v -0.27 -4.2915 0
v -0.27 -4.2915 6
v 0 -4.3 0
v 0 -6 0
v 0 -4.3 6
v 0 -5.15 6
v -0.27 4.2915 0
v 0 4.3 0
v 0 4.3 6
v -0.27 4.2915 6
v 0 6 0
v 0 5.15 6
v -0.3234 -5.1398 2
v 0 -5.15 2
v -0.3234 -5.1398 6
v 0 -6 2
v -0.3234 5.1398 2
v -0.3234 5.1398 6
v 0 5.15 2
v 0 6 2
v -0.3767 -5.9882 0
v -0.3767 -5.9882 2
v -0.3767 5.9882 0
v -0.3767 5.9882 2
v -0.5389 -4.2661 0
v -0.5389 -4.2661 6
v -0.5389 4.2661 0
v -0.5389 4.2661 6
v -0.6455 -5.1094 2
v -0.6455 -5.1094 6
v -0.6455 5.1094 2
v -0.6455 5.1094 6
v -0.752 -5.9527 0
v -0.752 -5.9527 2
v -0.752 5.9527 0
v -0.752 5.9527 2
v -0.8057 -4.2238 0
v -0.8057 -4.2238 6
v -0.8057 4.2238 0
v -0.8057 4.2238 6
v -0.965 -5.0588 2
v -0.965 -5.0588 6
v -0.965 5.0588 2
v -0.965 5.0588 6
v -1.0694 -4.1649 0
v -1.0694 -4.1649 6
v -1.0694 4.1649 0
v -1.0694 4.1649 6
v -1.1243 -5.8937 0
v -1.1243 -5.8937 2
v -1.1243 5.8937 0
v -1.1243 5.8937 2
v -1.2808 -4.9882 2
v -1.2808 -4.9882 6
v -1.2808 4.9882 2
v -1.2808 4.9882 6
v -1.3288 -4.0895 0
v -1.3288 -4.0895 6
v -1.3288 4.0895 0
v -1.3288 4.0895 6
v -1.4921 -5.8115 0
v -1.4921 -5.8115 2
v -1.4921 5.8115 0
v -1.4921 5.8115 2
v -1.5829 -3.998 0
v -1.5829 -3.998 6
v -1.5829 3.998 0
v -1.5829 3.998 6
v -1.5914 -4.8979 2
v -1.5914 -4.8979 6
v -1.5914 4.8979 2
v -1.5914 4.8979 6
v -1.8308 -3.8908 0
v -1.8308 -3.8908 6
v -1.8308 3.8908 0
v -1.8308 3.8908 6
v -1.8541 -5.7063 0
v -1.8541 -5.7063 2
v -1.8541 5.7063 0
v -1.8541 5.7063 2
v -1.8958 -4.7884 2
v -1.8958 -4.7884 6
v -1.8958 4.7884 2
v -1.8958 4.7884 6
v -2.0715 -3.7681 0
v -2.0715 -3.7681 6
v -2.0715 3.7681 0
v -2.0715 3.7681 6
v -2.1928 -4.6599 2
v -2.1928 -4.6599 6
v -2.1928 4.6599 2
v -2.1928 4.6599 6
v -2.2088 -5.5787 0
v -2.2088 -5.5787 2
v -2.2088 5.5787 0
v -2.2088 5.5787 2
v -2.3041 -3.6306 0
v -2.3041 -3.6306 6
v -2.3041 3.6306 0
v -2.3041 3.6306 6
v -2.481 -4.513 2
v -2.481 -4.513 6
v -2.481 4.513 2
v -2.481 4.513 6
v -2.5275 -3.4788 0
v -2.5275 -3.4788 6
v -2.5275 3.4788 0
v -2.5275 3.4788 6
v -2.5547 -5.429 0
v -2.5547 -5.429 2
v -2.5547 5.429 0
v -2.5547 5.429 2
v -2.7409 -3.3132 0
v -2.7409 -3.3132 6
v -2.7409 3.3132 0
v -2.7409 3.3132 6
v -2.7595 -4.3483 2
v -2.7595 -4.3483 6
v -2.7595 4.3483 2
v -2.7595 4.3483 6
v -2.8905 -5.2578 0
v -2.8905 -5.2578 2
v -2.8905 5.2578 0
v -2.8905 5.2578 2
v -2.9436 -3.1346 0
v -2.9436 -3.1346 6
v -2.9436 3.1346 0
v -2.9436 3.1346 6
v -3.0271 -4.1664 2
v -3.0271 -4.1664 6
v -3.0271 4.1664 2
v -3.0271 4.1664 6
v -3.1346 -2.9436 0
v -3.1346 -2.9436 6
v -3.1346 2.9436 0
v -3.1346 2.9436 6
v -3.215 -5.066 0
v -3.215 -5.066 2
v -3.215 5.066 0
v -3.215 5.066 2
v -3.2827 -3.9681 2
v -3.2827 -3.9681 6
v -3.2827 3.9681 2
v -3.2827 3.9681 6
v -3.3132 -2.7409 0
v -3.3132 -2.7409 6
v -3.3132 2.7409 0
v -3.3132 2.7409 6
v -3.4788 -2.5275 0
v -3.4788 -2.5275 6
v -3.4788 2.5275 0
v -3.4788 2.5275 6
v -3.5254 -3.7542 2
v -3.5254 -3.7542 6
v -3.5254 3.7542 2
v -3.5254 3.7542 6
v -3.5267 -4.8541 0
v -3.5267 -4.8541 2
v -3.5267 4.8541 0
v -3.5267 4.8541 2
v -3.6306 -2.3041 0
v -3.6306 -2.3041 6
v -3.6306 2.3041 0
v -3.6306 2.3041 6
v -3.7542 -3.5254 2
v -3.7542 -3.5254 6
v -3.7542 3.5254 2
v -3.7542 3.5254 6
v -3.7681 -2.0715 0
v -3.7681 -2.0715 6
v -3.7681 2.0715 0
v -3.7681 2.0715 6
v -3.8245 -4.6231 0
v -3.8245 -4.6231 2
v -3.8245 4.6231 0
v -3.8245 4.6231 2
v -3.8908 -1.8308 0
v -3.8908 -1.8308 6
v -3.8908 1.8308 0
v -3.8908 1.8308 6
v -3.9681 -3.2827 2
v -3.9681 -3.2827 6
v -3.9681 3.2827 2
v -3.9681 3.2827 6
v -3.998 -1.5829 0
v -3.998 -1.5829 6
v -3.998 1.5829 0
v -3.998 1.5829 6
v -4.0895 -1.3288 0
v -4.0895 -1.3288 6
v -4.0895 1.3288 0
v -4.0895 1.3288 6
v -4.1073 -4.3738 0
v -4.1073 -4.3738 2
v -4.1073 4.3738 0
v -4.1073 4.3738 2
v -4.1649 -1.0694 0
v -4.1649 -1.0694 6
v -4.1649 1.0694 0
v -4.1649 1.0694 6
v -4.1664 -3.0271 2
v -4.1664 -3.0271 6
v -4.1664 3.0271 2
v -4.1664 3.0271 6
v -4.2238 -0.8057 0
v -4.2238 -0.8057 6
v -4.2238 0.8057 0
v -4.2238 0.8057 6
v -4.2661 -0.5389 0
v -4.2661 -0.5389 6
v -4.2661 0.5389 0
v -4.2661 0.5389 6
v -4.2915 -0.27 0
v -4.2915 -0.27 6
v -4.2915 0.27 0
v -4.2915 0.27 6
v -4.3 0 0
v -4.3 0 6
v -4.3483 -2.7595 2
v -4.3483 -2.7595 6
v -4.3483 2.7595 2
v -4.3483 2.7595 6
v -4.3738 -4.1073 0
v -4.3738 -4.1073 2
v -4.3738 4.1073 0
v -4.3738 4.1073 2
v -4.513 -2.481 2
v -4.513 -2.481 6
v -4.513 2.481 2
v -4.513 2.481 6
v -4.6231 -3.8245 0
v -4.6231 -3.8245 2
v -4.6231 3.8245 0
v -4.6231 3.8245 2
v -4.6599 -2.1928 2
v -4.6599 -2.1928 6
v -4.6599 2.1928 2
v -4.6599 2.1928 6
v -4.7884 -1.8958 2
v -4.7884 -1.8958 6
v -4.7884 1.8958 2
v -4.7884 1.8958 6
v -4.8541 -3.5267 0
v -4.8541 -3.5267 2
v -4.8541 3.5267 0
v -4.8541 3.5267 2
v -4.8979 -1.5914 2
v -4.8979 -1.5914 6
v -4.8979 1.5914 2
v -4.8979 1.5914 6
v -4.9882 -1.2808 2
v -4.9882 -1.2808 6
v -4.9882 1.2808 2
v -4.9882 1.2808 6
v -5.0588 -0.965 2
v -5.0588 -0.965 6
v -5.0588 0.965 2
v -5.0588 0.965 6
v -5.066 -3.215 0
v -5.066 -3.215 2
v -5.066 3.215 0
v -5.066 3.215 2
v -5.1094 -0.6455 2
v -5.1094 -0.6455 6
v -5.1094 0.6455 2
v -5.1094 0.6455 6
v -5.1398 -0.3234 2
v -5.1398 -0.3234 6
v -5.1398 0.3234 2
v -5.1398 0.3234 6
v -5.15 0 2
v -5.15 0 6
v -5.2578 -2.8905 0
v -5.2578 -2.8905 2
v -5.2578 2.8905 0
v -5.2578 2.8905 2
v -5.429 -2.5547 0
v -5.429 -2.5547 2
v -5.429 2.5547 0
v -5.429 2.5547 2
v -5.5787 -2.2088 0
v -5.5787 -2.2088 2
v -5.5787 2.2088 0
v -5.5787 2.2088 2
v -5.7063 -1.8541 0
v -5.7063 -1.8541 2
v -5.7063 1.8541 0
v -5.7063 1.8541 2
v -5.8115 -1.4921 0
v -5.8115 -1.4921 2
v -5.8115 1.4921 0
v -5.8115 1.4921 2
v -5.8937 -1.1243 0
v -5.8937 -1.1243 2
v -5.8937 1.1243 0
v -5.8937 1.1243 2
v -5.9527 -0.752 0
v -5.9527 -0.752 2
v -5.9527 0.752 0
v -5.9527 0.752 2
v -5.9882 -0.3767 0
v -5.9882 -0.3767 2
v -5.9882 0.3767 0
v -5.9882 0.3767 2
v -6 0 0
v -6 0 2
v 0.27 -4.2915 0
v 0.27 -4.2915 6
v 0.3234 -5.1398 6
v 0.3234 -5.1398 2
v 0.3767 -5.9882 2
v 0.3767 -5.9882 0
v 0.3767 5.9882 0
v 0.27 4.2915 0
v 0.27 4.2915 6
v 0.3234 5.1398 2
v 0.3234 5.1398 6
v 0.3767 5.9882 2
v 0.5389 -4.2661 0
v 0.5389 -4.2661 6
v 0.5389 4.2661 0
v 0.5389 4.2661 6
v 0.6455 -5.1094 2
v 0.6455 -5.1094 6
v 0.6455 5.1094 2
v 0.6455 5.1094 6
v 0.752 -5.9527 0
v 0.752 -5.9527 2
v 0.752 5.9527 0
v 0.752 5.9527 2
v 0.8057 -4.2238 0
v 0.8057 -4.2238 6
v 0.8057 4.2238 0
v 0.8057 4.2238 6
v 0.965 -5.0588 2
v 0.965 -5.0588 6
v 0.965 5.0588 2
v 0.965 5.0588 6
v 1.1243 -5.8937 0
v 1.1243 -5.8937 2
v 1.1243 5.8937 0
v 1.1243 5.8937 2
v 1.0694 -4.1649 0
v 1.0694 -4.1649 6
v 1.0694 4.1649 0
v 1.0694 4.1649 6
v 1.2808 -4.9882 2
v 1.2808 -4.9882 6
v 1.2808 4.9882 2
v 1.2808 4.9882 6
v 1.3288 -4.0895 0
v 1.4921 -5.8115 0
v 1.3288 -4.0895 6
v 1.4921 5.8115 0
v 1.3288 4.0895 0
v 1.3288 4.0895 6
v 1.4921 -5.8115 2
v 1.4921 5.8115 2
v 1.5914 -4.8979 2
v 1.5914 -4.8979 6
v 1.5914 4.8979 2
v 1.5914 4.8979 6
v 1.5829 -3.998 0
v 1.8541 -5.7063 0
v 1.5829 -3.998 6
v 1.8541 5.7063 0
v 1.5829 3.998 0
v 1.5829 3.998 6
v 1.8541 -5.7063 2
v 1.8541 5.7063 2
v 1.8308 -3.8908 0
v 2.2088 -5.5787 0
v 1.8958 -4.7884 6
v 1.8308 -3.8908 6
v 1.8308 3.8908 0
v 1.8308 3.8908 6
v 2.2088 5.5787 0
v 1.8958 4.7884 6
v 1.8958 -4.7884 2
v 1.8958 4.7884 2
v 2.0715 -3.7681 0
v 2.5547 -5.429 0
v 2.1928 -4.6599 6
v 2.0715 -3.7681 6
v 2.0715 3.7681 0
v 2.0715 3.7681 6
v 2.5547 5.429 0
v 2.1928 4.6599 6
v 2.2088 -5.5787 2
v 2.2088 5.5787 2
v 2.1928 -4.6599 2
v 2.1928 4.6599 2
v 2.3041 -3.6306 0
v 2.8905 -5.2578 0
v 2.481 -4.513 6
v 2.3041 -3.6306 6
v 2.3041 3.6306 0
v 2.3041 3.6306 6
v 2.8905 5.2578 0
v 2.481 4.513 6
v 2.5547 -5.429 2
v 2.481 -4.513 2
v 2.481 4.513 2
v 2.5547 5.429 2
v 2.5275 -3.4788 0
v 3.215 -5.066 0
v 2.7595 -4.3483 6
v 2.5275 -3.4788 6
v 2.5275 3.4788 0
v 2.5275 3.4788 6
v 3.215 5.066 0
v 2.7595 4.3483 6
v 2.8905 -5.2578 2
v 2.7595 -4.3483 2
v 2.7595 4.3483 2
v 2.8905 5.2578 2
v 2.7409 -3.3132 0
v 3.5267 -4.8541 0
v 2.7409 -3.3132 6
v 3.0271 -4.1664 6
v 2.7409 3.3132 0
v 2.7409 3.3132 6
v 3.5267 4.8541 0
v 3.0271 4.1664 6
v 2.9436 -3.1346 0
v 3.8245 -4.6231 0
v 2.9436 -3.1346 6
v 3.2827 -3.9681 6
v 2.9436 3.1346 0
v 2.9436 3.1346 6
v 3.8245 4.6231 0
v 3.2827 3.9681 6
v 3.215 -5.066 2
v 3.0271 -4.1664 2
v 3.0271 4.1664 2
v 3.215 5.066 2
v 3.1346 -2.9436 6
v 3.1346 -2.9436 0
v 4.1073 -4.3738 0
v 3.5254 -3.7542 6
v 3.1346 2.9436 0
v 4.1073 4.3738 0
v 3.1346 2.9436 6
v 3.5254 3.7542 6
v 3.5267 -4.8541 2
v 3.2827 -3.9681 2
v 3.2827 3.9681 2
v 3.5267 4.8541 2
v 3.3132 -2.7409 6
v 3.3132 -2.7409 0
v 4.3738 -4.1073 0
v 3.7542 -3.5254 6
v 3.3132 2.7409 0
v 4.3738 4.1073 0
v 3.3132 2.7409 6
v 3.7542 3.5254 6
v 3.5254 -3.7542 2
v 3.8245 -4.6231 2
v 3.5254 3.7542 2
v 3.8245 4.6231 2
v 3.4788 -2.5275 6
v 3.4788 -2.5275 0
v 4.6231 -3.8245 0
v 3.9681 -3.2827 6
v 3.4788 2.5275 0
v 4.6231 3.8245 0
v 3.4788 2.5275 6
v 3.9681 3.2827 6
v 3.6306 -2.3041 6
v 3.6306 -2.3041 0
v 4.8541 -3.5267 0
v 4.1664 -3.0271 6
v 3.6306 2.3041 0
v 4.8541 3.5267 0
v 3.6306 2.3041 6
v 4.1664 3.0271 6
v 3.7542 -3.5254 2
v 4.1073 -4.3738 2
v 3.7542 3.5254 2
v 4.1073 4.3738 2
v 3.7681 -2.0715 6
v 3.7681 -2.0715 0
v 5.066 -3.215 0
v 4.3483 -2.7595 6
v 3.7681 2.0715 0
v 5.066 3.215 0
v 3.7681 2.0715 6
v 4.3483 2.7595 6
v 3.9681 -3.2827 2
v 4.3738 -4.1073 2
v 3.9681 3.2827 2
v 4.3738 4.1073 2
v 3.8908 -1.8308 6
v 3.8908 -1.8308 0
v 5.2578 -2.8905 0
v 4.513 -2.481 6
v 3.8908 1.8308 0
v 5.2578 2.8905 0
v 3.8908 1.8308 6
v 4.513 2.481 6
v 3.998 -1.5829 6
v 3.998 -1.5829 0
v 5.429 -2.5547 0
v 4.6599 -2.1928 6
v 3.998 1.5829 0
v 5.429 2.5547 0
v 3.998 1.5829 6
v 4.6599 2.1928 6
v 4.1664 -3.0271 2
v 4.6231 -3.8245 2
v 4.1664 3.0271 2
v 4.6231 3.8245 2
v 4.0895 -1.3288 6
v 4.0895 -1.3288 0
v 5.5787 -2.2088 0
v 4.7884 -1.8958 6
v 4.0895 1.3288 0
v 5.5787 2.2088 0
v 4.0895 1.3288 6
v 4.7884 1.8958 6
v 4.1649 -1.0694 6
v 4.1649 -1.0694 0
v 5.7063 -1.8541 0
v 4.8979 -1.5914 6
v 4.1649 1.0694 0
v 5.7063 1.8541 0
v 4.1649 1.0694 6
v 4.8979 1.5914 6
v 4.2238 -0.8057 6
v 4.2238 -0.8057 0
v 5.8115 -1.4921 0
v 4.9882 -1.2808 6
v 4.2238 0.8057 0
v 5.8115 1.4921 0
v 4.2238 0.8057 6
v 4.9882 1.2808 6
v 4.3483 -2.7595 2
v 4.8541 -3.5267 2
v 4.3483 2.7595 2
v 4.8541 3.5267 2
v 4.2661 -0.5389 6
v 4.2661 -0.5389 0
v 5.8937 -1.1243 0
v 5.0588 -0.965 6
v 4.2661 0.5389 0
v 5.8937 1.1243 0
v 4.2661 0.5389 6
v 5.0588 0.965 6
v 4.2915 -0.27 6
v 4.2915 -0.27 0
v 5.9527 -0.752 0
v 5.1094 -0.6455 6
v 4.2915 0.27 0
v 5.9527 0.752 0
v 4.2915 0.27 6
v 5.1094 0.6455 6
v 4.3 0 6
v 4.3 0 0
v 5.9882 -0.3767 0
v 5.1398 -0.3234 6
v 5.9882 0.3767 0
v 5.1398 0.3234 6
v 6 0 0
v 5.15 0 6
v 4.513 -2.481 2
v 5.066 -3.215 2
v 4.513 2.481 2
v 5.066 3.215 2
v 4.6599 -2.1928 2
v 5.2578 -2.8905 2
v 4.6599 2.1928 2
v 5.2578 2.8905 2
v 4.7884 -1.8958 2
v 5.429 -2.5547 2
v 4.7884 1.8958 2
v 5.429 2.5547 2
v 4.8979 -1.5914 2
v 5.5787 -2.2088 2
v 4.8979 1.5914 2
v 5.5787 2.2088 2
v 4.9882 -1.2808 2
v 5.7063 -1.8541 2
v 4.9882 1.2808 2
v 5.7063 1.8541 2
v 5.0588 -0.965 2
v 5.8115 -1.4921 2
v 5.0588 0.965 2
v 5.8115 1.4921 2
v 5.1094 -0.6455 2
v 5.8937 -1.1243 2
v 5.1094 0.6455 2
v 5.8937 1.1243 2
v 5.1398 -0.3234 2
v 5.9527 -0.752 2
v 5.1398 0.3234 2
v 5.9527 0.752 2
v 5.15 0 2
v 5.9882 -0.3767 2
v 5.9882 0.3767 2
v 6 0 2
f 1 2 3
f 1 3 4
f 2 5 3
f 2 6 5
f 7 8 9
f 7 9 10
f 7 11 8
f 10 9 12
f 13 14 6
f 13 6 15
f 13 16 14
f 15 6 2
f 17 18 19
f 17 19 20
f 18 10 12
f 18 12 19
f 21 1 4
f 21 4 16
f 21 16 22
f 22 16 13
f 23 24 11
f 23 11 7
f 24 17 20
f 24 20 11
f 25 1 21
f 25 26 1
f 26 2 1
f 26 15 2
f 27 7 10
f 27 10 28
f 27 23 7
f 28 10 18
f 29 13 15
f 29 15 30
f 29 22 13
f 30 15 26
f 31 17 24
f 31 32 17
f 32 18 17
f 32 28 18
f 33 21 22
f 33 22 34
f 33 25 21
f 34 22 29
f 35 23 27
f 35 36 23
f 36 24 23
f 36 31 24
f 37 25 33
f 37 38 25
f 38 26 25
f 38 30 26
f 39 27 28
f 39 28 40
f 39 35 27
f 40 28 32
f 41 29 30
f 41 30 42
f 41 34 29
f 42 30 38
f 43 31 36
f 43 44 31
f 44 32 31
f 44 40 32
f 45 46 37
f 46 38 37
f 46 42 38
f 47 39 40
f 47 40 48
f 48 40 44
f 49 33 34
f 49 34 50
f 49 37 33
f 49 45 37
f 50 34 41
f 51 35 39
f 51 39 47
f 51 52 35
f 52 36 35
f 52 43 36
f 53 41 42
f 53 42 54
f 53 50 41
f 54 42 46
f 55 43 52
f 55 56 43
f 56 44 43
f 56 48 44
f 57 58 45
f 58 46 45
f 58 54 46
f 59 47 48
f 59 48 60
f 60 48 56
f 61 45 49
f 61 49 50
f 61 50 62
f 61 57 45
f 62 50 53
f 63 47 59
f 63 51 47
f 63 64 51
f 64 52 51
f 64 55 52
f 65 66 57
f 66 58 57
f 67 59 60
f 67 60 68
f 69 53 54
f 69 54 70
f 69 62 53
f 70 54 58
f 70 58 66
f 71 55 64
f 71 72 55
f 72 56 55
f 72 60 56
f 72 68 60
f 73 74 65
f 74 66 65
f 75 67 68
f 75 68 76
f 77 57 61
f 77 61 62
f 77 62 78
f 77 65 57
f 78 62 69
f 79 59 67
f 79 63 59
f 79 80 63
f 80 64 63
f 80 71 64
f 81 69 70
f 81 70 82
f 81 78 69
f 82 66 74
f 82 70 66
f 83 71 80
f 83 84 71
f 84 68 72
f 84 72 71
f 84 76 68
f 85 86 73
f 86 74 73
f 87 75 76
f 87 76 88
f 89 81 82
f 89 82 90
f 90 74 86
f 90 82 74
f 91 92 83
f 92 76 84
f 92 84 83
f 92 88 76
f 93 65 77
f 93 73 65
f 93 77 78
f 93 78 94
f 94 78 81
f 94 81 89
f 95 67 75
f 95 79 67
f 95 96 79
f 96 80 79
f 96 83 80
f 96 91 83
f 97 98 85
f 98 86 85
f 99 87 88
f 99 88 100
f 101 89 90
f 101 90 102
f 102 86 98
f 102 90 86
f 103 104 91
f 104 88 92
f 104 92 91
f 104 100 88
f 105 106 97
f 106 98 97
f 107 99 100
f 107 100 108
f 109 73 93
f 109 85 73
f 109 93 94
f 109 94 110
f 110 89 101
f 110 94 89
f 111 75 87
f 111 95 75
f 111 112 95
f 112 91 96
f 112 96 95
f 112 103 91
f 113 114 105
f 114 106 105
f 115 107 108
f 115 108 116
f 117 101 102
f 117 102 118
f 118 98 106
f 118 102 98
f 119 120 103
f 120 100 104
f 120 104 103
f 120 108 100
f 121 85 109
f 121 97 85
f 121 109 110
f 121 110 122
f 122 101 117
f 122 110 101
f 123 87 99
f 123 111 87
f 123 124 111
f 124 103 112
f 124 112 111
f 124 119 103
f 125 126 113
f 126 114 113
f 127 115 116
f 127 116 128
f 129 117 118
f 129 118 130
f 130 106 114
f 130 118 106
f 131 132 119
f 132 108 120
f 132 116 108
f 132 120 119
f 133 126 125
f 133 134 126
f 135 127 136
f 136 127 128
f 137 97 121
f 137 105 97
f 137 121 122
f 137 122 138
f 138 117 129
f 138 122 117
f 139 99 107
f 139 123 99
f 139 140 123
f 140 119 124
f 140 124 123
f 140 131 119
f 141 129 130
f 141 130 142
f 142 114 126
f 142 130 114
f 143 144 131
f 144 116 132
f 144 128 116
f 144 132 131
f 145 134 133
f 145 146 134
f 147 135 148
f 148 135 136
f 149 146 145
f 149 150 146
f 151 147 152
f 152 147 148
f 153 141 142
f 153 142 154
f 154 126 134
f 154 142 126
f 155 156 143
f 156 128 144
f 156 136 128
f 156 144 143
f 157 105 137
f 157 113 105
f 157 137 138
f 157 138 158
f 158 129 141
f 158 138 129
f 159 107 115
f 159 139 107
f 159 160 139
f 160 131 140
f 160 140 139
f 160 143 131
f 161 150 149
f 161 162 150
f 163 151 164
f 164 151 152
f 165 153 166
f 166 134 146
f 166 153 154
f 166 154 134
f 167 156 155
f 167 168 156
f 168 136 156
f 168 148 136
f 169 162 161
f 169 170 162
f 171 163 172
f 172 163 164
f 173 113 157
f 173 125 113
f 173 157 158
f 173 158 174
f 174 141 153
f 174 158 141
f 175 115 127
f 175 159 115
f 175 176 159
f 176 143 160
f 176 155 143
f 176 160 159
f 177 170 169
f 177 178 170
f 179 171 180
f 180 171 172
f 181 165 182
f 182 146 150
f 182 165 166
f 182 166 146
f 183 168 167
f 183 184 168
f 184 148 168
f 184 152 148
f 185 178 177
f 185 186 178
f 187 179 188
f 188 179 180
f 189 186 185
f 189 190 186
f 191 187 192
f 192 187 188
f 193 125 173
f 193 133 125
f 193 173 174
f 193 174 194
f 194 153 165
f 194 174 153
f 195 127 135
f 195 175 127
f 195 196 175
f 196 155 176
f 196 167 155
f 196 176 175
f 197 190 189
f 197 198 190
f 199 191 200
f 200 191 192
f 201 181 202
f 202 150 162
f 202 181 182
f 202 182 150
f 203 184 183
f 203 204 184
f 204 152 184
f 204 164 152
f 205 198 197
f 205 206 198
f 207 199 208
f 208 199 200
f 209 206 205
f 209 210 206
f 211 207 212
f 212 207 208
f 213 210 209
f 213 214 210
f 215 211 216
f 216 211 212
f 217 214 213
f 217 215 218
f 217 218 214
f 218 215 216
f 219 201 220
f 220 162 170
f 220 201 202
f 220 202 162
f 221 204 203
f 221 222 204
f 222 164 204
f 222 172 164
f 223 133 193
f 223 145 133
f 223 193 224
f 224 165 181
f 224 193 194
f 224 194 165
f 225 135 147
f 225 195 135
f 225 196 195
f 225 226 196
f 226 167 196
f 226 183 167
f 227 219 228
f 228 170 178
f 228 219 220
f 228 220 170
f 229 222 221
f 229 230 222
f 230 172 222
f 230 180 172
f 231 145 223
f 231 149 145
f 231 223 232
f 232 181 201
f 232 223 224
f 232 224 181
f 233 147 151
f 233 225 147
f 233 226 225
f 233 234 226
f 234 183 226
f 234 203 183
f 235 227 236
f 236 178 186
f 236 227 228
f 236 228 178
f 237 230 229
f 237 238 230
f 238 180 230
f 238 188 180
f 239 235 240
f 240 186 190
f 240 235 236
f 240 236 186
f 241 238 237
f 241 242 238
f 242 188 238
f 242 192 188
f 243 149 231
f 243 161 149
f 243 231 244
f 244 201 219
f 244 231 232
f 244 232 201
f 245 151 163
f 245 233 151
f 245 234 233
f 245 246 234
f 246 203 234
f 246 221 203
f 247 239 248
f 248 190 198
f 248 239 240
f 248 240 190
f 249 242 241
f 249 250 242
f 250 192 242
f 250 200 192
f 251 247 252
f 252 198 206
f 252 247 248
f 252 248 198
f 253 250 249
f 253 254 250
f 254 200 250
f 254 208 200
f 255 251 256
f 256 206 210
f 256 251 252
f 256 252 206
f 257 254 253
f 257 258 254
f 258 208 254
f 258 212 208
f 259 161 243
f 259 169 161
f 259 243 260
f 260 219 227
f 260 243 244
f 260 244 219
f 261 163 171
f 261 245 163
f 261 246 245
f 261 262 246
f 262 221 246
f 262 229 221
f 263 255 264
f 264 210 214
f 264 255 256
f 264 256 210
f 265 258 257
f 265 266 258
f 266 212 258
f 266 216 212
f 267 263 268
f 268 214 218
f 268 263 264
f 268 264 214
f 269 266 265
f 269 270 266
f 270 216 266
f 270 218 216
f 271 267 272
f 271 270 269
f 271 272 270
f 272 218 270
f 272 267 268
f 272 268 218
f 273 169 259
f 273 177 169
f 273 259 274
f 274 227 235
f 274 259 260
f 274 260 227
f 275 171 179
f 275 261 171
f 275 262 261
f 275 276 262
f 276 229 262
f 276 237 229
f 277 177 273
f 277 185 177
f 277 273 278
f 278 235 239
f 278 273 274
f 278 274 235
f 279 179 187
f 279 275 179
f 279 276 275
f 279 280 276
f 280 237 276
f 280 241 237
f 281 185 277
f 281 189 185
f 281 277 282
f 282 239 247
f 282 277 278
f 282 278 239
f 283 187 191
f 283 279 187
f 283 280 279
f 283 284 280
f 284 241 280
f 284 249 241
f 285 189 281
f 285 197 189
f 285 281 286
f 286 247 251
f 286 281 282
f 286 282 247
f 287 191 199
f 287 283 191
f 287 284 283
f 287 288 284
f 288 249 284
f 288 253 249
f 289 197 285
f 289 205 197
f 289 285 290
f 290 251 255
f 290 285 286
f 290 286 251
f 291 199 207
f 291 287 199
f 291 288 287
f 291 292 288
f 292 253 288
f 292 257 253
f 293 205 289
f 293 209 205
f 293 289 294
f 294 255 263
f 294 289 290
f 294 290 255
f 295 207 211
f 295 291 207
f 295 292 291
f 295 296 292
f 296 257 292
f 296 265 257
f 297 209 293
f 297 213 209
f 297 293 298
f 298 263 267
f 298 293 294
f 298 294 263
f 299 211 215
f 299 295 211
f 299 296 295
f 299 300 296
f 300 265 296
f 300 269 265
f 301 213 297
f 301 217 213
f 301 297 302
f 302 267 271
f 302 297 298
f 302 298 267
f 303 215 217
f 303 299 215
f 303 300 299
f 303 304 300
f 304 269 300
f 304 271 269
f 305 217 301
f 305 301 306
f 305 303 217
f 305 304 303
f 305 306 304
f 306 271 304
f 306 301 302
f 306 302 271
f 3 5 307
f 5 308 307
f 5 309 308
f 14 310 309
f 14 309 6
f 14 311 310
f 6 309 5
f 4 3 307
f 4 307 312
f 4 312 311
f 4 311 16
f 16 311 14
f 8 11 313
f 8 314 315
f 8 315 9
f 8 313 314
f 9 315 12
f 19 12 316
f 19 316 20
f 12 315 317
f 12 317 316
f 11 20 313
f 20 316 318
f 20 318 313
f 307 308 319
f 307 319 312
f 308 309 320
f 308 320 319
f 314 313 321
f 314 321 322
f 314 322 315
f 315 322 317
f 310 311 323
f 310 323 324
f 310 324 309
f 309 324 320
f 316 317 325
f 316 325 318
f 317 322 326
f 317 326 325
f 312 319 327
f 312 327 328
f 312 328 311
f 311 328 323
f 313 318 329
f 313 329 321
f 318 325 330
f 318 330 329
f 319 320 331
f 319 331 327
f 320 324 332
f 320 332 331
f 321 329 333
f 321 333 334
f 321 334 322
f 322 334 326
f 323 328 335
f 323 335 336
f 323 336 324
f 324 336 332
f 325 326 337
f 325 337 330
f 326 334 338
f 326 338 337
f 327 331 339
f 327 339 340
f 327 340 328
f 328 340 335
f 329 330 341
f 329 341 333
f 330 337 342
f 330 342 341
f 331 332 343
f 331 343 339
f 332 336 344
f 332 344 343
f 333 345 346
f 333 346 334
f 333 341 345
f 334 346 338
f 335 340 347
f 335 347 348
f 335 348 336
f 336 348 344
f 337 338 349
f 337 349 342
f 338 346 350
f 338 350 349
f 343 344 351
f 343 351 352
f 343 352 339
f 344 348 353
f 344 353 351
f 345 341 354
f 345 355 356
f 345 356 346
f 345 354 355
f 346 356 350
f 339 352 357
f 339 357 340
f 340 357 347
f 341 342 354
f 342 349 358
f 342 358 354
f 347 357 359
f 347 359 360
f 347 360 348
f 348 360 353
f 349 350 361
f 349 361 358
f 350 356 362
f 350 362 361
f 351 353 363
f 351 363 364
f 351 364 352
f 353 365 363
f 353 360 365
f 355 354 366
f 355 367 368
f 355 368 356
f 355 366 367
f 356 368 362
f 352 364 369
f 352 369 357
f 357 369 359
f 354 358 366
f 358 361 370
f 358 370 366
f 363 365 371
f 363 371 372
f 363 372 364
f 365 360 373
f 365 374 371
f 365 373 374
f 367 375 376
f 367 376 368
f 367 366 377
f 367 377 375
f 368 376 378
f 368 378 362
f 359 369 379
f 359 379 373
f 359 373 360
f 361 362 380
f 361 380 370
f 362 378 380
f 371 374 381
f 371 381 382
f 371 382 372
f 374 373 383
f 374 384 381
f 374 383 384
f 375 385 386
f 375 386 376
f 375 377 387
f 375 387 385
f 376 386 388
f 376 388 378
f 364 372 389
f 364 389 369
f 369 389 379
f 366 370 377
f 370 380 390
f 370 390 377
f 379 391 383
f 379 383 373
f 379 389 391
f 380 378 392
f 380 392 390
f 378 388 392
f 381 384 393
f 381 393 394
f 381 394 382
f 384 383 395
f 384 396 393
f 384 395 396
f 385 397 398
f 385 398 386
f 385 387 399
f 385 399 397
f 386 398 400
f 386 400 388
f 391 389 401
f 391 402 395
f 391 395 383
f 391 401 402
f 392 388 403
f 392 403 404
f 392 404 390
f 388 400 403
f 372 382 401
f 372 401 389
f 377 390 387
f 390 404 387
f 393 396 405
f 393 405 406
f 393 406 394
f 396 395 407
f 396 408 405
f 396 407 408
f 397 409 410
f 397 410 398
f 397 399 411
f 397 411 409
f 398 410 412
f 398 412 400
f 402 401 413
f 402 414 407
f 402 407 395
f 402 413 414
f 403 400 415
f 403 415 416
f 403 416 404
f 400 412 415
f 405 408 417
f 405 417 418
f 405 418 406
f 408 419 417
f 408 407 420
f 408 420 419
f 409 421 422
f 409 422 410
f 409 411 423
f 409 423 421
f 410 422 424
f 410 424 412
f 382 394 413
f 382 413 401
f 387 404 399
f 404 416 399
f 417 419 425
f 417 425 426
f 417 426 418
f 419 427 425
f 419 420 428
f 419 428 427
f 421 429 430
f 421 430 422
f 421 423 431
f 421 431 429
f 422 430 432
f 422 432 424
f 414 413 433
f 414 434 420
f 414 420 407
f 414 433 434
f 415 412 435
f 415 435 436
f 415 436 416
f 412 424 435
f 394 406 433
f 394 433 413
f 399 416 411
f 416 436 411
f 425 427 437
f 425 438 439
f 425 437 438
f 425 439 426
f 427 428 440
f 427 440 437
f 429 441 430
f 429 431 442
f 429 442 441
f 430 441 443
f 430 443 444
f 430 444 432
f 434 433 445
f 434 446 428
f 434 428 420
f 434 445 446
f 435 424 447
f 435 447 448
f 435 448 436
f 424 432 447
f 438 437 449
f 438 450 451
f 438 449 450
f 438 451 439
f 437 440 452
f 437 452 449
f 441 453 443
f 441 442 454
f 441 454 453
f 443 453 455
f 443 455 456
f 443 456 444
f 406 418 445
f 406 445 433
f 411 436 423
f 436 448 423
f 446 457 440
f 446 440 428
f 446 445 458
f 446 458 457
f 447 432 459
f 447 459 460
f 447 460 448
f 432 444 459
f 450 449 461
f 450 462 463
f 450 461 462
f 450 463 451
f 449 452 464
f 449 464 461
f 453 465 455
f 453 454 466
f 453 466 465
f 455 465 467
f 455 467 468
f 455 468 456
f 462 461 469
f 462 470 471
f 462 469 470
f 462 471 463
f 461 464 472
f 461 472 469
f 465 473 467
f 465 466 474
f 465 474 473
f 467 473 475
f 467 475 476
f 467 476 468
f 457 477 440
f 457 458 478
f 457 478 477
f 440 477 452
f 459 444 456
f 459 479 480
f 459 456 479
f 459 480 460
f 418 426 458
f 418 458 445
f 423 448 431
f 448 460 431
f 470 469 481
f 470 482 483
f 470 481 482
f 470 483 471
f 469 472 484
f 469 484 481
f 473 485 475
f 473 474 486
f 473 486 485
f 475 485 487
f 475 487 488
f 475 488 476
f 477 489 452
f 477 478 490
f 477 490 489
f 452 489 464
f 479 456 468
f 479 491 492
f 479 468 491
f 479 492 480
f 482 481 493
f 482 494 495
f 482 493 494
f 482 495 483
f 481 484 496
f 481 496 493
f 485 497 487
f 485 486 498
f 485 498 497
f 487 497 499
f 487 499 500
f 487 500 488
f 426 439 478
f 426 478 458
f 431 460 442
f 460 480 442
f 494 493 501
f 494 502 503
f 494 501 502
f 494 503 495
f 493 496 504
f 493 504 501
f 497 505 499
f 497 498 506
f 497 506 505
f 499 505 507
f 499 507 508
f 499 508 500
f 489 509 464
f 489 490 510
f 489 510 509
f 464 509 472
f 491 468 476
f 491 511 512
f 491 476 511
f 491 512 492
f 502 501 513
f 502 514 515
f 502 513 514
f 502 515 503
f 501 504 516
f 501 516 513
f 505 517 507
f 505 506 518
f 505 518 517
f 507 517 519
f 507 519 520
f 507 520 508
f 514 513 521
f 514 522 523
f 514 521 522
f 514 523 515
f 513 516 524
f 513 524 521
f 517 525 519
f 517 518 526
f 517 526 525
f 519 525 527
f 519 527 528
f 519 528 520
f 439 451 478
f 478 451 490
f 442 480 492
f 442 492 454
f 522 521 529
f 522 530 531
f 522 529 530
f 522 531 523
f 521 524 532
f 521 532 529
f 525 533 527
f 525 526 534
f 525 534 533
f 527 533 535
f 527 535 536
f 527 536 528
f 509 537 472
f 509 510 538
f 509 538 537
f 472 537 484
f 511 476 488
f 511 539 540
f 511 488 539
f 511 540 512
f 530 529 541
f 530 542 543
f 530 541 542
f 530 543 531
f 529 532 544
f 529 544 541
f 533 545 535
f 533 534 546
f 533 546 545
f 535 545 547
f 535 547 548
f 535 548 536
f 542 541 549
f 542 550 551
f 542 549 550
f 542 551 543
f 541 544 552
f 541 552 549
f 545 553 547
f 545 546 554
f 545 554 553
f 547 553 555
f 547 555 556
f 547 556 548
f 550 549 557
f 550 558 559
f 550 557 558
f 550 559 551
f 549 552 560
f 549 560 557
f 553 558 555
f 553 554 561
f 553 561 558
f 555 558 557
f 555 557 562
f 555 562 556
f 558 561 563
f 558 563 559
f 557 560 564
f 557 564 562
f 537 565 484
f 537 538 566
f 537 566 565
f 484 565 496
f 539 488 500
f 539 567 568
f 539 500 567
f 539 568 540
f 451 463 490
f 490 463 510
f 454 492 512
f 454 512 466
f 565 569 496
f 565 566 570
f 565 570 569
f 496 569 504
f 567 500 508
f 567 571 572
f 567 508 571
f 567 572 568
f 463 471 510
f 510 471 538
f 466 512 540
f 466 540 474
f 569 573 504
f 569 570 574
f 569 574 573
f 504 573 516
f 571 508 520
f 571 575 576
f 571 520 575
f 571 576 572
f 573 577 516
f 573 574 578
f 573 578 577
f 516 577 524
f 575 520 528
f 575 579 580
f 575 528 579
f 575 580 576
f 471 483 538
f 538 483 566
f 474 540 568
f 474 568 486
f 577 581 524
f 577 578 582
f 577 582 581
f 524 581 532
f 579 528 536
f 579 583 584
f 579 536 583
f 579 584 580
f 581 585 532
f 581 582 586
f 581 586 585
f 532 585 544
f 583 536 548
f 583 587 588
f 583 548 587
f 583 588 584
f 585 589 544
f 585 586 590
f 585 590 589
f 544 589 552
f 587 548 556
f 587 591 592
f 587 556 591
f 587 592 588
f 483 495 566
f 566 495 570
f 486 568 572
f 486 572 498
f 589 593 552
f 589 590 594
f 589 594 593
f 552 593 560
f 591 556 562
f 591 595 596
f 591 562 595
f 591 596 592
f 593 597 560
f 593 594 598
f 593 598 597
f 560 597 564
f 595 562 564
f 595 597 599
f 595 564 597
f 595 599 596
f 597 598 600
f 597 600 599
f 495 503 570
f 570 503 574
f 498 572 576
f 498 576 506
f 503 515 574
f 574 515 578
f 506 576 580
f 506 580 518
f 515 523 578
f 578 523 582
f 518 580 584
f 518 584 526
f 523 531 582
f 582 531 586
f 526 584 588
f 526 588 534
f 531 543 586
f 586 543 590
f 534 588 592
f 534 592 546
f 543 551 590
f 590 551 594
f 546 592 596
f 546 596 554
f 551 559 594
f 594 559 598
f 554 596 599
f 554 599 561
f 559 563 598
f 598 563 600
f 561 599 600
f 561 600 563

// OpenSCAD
// file: ../../parameters.scad
maximum_printable_size = 150;

layer_thickness = 0.3;
global_clearance = 0.5;

platform_base_radius = 200; // Radius ukotvení válců spodní platformy
platform_base_thickness = 20;
platform_cilinder_medium_length = 250;  // délka pneumatického válce s pístem vysunutým do poloviny rozsahu
platform_base_cilinder_spacing = 38;    //rozestupy spodního a horního ukotvení válců. 
platform_top_cilinder_spacing = 30;
platform_top_radius = 75;   // rádius horní základny (vdálenost od středu základny do středu kulového kloubu ke kterému je uchycen pneumatický válec)


// screw length step - minimum difference in length between two types of screws
basic_screw_length = 5;


//Screw diameter and nut for M10 [mm]
M10_screw_diameter=10.4;
M10_head_height = 10;
M10_head_diameter = 16+0.5;
M10_nut_height = 10.5;
M10_nut_diameter = 25.5;
M10_nut_pocket = 22.3;

//Screw diameter for M8 [mm]
M8_screw_diameter = 8.6;
M8_head_height = 8;
M8_head_diameter = 13.5;
M8_nut_height = 7.5;
M8_nut_diameter = 14.4 + 0.5;
M8_nut_pocket = 13 + 0.5;

//Screw diameter and nut for M6 [mm]
M6_screw_diameter=6.5;
M6_head_diameter = 10+0.5;
M6_head_height = 6;
M6_nut_height = 4.9;
M6_nut_diameter = 11.8;
M6_nut_pocket = 10.4;
M6_square_nut_height = 3;
M6_square_nut_diameter = 10;

//Screw diameter and nut for M5 [mm]
M5_screw_diameter=5.5;
M5_head_height = 5;
M5_head_diameter = 13+0.5;
M5_nut_height = 4.5;
M5_nut_diameter = 9.4;
M5_nut_pocket = 8.4;

//Screw diameter and nut for M4 [mm]
M4_screw_diameter=4.5;
M4_screw_head_height = 4;
M4_nut_height = 3.2;
M4_nut_diameter = 8.4;
M4_nut_pocket = 7.5;

//Screw diameter and nut for M3 [mm]
M3_screw_diameter = 3.2;
M3_nut_height = 2.7;
M3_nut_diameter = 6.6;
M3_screw_head_height = 3;

//Screw diameter and nut for M2,5 [mm]
M2_5_screw_diameter = 2.7;
M2_5_nut_height = 2.3;
M2_5_nut_diameter = 6;
M2_5_nut_pocket = 5.5;

// kulove lozisko

bearing_efsm_08_h = 33+1;
bearing_efsm_08_m = 22;
bearing_efsm_08_db = 18;
bearing_efsm_08_ag = 10.5;
bearing_efsm_08_n = M4_screw_diameter;
bearing_efsm_08_a1 = 5.5;
bearing_efsm_08_d = 8.25;
bearing_efsm_08_B = 8; // ball height

bearing_efsm_10_h = 38+1;
bearing_efsm_10_m = 26;
bearing_efsm_10_db = 21.9;
bearing_efsm_10_ag = 12+0.2;
bearing_efsm_10_n = M5_screw_diameter;
bearing_efsm_10_a1 = 6.5;
bearing_efsm_10_d = 10.25;


bearing_efsm_12_width = 40+1;
bearing_efsm_12_h = bearing_efsm_12_width;
bearing_efsm_12_boltd = 28/2; // polovina vzdalenosti mezi srouby
bearing_efsm_12_m = bearing_efsm_12_boltd*2;
bearing_efsm_12_db = 25;
bearing_efsm_12_ag = 13;
bearing_efsm_12_a1 = 7;
bearing_efsm_12_n = M5_screw_diameter;
bearing_efsm_12_d = 12.15;
bearing_efsm_12_B = 10; // ball height
bearing_efsm_space = 1;

bearing_efsm_17_width = 54+1;
bearing_efsm_17_h = bearing_efsm_17_width;
bearing_efsm_17_boltd = 38/2; // polovina vzdalenosti mezi srouby
bearing_efsm_17_m = bearing_efsm_17_boltd*2;
bearing_efsm_17_db = 35;
bearing_efsm_17_ag = 18;
bearing_efsm_17_n = M6_screw_diameter;
bearing_efsm_17_a1 = 10;
bearing_efsm_17_B = 17; // ball height

//limcove lozisko
bearing_EFOM_10_L=26; //celkova sirka zakladny
bearing_EFOM_10_d1=10.3;//diametr otvoru real=10 mm
bearing_EFOM_10_dB=22;//diametr vystupku pro ulozeni lozika
bearing_EFOM_10_H=52;//celková delka zakladny
bearing_EFOM_10_J=36;// hole pitch
bearing_EFOM_10_A1=6.5;//vyska pouzdra
bearing_EFOM_10_Ag=12;//celkova vyska
bearing_EFOM_10_N1=5;//sirka otvoru pro sroub
bearing_EFOM_10_N2=8;//delka otvoru pro sroub
bearing_EFOM_10_m=36;//roztec der pro sroub
bearing_EFOM_10_h=9;//vyska lozika

// 20 KG servo parameters


servo_20kg_axis_offset = 9.375; // jak je osa mimo stredu
servo_20kg_body_x = 42;
servo_20kg_body_y = 21;
servo_20kg_body_z = 40;
servo_20kg_thread_x = 49/2;
servo_20kg_thread_y = 10/2;
servo_20kg_body_below = 10; // jak hluboko je tělo serva pod drzaky na srouby
servo_20kg_below = 25.8; // jak hluboko je páka serva pod drzaky na srouby

servo_20kg_bolt_d = 2.5+0.3;
servo_20kg_nut_d = 5+0.3;


//strain gauge
strain_gauge_width = 12.7;
strain_gauge_length = 75.1;
strain_gauge_screw_distance = 10;

//ALU profile
ALU_profile_width = 30.3;
ALU_profile_holder_wall_thickness = 3;
ALU_profile_groove_width = 8;

//pillow block bearing
//https://www.igus.eu/product/372
//Part no. KSTM-08
KSTM08_screws_distance = 33;         //m
KSTM08_screws_holes_diameter = 4.5;  //d2
KSTM08_flange_thickness = 6;         //h3
KSTM08_case_width = 9;               //C1
KSTM08_case_length = 47;             //a
KSTM08_ball_width = 12;              //B


//ložiska pro malý rotor
bearing_outer_diameter = 10.2;    // Rozměr B1 v nákresu s přídavkem na toleranci otvoru
bearing_thickness = 4;        // Rozměr B2 v nákresu
//bearing_shaft_length = 19.5;    // Rozměr B3 v nákresu, Originalni hodnota 19.5
bearing_shaft_length = 20;    // Rozměr B3 v nákresu
// main file
//prumer loziska 10 mm
//pocinato se sroubem M8 o min delce 20 mm

include <../../parameters.scad>
inner_diameter = M8_screw_diameter;
rim_outer_diameter=12;
rim_height = 2;
//bearng_ball_height = 9/2-0.5;
//inner_diameter = M6_screw_diameter - 0.25;
//outer_diameter = bearing_efsm_10_d + 3;

module 888_3016(draft = true){

    difference(){
        union(){
            cylinder(h = rim_height, d = rim_outer_diameter, $fn = 100);
            translate([0,0,rim_height])
                cylinder(h = (bearing_EFOM_10_h/2)-0.5, d = bearing_EFOM_10_d1, $fn = 100);
        }
        cylinder(h = 2 * bearing_EFOM_10_h , d = inner_diameter, $fn = 100);
    }
}
888_3016();
